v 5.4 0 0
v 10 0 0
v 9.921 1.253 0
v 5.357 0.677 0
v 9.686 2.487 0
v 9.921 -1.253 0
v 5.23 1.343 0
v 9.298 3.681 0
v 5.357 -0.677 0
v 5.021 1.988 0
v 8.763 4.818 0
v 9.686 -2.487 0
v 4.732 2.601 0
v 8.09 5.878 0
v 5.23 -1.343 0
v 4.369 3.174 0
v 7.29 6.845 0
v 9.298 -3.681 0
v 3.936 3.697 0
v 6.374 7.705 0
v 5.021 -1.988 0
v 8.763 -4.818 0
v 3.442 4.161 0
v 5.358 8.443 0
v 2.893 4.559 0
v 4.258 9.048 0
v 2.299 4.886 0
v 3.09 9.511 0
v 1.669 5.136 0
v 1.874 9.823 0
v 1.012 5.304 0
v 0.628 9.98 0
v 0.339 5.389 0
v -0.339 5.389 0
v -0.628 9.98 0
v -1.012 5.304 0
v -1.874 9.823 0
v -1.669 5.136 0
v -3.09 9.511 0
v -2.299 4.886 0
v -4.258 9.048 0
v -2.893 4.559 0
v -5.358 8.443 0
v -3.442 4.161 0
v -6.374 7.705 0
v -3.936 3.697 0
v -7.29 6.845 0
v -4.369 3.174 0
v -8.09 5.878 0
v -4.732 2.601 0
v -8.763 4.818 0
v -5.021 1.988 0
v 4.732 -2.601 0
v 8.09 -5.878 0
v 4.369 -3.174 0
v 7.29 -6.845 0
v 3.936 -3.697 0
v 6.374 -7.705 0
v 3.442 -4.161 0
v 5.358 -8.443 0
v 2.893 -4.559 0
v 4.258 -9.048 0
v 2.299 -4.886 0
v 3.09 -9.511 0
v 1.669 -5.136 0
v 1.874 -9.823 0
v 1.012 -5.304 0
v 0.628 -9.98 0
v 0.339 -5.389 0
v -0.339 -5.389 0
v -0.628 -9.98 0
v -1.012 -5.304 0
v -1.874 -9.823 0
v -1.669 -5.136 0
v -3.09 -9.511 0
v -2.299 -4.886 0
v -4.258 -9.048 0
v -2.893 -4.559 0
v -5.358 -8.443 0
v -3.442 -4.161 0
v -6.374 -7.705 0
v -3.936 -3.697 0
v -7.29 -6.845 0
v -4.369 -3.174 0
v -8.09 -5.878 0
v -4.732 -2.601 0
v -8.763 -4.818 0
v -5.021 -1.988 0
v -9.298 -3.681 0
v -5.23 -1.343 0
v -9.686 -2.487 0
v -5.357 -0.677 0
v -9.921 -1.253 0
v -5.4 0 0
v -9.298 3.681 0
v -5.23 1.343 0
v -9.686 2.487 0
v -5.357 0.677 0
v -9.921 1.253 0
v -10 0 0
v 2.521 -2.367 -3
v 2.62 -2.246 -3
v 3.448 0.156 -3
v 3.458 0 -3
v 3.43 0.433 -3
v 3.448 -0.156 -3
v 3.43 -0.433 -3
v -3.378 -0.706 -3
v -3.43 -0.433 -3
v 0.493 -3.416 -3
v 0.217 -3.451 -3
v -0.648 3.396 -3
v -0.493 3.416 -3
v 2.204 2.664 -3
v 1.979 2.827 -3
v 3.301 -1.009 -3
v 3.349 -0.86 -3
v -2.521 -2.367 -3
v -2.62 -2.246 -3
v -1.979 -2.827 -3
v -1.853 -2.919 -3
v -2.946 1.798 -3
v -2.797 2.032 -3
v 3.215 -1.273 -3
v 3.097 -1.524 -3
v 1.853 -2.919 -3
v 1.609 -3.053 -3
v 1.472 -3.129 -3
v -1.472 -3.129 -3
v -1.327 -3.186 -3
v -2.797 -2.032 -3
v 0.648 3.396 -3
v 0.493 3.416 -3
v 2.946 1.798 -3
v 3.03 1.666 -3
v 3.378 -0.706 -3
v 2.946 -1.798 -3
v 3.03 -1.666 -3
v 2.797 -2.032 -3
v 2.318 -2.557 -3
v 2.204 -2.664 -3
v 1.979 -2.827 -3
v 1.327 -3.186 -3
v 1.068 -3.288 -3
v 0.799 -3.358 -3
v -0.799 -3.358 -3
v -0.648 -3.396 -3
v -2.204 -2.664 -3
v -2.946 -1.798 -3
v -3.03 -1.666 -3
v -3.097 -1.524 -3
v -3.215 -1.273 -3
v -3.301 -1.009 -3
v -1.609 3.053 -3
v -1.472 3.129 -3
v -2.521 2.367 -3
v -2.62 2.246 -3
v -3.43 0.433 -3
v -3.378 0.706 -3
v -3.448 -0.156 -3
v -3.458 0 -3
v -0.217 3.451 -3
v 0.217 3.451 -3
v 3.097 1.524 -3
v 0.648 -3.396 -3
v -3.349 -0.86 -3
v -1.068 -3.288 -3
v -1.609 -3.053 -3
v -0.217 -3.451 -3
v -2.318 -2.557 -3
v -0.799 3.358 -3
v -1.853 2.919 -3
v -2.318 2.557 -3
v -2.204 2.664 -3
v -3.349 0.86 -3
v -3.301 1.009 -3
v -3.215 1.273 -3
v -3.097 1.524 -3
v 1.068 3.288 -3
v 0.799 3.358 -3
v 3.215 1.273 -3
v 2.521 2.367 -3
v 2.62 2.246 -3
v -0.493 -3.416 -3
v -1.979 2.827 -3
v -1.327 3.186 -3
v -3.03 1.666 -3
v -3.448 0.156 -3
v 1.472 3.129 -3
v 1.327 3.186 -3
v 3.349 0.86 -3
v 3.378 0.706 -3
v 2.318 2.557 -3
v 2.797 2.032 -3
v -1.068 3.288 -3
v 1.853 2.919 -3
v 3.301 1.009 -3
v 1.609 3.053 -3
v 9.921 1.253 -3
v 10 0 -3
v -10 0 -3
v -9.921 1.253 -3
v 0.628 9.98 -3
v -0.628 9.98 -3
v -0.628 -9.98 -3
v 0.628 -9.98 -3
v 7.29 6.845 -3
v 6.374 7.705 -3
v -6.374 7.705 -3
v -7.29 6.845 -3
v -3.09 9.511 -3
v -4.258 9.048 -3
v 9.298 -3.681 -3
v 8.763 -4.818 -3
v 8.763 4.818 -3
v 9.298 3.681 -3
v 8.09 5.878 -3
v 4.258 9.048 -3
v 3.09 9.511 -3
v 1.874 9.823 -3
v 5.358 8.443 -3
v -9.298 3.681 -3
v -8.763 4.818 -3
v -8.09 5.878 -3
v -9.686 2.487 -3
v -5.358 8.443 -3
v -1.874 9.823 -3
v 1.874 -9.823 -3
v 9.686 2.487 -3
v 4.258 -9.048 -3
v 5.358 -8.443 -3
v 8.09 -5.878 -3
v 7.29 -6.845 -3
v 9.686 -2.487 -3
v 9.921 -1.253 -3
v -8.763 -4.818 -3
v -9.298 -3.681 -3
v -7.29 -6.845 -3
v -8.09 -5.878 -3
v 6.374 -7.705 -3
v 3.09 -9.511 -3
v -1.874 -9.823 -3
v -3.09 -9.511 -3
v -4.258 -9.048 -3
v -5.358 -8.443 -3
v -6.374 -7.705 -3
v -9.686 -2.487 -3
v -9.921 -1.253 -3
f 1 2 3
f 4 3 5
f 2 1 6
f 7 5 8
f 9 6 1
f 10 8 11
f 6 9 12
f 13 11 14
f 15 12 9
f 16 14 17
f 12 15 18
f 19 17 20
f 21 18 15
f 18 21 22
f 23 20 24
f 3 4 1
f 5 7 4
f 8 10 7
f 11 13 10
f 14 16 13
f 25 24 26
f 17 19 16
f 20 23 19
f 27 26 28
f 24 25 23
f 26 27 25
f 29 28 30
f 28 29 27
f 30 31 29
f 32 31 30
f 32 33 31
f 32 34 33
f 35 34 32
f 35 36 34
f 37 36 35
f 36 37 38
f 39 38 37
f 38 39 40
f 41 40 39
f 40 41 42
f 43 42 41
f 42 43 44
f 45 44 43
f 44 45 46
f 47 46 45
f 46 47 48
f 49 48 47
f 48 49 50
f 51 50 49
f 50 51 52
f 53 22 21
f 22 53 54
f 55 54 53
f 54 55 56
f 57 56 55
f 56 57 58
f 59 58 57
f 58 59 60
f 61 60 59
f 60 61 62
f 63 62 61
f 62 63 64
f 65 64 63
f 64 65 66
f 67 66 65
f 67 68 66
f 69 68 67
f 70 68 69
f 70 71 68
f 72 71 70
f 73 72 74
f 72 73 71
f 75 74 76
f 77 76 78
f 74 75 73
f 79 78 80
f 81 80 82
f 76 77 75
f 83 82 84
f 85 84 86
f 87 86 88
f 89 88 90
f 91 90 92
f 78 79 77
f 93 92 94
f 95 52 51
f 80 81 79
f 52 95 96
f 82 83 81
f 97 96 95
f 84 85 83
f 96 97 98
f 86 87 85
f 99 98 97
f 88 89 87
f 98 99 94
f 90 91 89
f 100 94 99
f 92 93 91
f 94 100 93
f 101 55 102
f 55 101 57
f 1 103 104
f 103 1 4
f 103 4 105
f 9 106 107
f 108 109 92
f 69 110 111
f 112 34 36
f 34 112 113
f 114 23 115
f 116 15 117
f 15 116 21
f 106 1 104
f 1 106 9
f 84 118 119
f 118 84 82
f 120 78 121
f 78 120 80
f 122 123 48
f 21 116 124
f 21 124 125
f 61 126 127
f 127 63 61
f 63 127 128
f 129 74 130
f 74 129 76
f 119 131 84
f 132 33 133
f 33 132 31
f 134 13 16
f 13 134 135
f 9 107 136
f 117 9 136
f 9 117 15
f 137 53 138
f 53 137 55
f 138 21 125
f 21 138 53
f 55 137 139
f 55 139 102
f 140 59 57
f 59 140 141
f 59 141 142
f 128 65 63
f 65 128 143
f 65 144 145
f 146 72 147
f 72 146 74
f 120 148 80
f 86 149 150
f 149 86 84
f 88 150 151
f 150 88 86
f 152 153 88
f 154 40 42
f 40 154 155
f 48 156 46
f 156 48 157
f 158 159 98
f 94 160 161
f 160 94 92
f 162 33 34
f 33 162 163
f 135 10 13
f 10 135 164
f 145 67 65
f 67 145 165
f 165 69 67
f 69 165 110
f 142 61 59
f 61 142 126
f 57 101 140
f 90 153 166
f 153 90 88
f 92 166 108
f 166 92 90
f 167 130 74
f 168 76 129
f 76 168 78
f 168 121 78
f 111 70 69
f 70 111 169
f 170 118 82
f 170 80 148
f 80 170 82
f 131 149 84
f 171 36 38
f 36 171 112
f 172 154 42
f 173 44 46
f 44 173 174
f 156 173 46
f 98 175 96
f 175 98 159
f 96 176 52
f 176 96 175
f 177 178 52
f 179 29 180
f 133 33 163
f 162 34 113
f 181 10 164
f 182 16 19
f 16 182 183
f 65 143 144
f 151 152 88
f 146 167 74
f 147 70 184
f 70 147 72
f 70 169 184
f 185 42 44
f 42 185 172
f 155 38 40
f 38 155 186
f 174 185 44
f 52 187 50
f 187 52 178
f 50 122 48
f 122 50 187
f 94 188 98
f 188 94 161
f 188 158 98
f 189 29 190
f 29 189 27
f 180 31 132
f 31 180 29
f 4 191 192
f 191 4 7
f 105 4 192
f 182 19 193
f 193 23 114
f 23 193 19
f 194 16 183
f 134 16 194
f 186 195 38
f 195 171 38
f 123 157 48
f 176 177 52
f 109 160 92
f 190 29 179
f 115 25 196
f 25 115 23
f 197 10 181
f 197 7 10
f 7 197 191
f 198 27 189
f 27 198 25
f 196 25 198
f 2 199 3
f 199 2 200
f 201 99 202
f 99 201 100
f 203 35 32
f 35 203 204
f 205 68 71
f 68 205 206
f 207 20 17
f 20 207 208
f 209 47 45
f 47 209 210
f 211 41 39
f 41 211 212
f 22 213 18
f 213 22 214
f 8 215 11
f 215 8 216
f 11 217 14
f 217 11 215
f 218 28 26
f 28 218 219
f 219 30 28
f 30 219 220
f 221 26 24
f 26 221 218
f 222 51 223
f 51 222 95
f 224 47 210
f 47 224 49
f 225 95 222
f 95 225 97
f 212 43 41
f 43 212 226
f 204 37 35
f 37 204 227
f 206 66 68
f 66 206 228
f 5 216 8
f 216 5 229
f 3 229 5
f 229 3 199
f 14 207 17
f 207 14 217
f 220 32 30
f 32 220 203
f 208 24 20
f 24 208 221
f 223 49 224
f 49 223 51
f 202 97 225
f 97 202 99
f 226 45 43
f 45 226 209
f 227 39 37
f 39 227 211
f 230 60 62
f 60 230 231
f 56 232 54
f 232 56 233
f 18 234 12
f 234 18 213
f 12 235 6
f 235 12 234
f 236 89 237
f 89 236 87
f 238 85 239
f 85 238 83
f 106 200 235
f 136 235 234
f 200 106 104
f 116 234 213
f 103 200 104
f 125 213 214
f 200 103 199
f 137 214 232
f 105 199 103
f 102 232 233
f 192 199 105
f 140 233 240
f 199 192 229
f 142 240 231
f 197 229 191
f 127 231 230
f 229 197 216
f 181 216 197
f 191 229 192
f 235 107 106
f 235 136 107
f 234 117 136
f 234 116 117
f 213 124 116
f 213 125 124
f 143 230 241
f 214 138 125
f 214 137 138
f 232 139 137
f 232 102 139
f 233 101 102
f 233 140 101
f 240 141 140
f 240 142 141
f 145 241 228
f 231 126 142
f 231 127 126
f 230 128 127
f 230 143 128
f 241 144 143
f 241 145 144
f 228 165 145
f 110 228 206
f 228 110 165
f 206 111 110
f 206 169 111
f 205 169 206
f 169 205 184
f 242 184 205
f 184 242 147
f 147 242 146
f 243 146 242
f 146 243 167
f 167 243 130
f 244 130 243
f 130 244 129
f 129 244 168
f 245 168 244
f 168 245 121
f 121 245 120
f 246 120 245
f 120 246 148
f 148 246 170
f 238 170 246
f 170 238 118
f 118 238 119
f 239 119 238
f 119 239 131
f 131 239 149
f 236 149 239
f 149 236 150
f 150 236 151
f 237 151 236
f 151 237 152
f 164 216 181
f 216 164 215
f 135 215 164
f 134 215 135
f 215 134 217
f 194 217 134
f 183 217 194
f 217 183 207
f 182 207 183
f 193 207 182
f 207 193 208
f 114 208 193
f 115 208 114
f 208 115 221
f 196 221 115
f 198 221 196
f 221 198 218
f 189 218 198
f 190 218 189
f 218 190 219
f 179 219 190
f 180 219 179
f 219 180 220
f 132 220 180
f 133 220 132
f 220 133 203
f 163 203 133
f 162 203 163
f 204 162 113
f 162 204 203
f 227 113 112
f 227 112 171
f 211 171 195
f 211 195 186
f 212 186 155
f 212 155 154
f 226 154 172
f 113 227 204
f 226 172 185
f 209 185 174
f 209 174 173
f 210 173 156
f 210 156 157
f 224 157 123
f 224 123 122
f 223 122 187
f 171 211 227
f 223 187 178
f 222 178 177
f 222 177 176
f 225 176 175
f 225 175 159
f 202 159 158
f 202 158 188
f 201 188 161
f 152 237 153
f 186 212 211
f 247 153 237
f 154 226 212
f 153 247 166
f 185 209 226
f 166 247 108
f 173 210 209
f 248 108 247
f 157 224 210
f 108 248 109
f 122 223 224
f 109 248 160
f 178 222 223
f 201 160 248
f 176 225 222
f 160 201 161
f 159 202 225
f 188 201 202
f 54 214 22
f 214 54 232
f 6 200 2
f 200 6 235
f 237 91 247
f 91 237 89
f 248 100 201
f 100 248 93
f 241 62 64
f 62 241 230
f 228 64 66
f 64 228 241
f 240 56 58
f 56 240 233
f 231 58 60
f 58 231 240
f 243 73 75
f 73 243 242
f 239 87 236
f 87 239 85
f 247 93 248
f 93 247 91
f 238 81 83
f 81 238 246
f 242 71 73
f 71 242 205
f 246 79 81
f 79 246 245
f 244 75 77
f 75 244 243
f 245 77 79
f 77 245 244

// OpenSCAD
$fn = 50;


difference() {
	union() {
		translate(v = [0, 0, -3.0000000000]) {
			cylinder(h = 3, r = 10.0000000000);
		}
		cylinder(h = 0, r = 16.0000000000);
	}
	union() {
		translate(v = [0, 0, 0]) {
			rotate(a = [0, 0, 0]) {
				difference() {
					union() {
						#translate(v = [0, 0, -3.0000000000]) {
							cylinder(h = 3, r = 2.6000000000);
						}
						#translate(v = [0, 0, -3.9000000000]) {
							cylinder(h = 3.9000000000, r1 = 2.8750000000, r2 = 5.4000000000);
						}
						#translate(v = [0, 0, -3.0000000000]) {
							cylinder(h = 3, r = 2.8750000000);
						}
						#translate(v = [0, 0, -3.0000000000]) {
							cylinder(h = 3, r = 2.6000000000);
						}
					}
					union();
				}
			}
		}
	}
}
